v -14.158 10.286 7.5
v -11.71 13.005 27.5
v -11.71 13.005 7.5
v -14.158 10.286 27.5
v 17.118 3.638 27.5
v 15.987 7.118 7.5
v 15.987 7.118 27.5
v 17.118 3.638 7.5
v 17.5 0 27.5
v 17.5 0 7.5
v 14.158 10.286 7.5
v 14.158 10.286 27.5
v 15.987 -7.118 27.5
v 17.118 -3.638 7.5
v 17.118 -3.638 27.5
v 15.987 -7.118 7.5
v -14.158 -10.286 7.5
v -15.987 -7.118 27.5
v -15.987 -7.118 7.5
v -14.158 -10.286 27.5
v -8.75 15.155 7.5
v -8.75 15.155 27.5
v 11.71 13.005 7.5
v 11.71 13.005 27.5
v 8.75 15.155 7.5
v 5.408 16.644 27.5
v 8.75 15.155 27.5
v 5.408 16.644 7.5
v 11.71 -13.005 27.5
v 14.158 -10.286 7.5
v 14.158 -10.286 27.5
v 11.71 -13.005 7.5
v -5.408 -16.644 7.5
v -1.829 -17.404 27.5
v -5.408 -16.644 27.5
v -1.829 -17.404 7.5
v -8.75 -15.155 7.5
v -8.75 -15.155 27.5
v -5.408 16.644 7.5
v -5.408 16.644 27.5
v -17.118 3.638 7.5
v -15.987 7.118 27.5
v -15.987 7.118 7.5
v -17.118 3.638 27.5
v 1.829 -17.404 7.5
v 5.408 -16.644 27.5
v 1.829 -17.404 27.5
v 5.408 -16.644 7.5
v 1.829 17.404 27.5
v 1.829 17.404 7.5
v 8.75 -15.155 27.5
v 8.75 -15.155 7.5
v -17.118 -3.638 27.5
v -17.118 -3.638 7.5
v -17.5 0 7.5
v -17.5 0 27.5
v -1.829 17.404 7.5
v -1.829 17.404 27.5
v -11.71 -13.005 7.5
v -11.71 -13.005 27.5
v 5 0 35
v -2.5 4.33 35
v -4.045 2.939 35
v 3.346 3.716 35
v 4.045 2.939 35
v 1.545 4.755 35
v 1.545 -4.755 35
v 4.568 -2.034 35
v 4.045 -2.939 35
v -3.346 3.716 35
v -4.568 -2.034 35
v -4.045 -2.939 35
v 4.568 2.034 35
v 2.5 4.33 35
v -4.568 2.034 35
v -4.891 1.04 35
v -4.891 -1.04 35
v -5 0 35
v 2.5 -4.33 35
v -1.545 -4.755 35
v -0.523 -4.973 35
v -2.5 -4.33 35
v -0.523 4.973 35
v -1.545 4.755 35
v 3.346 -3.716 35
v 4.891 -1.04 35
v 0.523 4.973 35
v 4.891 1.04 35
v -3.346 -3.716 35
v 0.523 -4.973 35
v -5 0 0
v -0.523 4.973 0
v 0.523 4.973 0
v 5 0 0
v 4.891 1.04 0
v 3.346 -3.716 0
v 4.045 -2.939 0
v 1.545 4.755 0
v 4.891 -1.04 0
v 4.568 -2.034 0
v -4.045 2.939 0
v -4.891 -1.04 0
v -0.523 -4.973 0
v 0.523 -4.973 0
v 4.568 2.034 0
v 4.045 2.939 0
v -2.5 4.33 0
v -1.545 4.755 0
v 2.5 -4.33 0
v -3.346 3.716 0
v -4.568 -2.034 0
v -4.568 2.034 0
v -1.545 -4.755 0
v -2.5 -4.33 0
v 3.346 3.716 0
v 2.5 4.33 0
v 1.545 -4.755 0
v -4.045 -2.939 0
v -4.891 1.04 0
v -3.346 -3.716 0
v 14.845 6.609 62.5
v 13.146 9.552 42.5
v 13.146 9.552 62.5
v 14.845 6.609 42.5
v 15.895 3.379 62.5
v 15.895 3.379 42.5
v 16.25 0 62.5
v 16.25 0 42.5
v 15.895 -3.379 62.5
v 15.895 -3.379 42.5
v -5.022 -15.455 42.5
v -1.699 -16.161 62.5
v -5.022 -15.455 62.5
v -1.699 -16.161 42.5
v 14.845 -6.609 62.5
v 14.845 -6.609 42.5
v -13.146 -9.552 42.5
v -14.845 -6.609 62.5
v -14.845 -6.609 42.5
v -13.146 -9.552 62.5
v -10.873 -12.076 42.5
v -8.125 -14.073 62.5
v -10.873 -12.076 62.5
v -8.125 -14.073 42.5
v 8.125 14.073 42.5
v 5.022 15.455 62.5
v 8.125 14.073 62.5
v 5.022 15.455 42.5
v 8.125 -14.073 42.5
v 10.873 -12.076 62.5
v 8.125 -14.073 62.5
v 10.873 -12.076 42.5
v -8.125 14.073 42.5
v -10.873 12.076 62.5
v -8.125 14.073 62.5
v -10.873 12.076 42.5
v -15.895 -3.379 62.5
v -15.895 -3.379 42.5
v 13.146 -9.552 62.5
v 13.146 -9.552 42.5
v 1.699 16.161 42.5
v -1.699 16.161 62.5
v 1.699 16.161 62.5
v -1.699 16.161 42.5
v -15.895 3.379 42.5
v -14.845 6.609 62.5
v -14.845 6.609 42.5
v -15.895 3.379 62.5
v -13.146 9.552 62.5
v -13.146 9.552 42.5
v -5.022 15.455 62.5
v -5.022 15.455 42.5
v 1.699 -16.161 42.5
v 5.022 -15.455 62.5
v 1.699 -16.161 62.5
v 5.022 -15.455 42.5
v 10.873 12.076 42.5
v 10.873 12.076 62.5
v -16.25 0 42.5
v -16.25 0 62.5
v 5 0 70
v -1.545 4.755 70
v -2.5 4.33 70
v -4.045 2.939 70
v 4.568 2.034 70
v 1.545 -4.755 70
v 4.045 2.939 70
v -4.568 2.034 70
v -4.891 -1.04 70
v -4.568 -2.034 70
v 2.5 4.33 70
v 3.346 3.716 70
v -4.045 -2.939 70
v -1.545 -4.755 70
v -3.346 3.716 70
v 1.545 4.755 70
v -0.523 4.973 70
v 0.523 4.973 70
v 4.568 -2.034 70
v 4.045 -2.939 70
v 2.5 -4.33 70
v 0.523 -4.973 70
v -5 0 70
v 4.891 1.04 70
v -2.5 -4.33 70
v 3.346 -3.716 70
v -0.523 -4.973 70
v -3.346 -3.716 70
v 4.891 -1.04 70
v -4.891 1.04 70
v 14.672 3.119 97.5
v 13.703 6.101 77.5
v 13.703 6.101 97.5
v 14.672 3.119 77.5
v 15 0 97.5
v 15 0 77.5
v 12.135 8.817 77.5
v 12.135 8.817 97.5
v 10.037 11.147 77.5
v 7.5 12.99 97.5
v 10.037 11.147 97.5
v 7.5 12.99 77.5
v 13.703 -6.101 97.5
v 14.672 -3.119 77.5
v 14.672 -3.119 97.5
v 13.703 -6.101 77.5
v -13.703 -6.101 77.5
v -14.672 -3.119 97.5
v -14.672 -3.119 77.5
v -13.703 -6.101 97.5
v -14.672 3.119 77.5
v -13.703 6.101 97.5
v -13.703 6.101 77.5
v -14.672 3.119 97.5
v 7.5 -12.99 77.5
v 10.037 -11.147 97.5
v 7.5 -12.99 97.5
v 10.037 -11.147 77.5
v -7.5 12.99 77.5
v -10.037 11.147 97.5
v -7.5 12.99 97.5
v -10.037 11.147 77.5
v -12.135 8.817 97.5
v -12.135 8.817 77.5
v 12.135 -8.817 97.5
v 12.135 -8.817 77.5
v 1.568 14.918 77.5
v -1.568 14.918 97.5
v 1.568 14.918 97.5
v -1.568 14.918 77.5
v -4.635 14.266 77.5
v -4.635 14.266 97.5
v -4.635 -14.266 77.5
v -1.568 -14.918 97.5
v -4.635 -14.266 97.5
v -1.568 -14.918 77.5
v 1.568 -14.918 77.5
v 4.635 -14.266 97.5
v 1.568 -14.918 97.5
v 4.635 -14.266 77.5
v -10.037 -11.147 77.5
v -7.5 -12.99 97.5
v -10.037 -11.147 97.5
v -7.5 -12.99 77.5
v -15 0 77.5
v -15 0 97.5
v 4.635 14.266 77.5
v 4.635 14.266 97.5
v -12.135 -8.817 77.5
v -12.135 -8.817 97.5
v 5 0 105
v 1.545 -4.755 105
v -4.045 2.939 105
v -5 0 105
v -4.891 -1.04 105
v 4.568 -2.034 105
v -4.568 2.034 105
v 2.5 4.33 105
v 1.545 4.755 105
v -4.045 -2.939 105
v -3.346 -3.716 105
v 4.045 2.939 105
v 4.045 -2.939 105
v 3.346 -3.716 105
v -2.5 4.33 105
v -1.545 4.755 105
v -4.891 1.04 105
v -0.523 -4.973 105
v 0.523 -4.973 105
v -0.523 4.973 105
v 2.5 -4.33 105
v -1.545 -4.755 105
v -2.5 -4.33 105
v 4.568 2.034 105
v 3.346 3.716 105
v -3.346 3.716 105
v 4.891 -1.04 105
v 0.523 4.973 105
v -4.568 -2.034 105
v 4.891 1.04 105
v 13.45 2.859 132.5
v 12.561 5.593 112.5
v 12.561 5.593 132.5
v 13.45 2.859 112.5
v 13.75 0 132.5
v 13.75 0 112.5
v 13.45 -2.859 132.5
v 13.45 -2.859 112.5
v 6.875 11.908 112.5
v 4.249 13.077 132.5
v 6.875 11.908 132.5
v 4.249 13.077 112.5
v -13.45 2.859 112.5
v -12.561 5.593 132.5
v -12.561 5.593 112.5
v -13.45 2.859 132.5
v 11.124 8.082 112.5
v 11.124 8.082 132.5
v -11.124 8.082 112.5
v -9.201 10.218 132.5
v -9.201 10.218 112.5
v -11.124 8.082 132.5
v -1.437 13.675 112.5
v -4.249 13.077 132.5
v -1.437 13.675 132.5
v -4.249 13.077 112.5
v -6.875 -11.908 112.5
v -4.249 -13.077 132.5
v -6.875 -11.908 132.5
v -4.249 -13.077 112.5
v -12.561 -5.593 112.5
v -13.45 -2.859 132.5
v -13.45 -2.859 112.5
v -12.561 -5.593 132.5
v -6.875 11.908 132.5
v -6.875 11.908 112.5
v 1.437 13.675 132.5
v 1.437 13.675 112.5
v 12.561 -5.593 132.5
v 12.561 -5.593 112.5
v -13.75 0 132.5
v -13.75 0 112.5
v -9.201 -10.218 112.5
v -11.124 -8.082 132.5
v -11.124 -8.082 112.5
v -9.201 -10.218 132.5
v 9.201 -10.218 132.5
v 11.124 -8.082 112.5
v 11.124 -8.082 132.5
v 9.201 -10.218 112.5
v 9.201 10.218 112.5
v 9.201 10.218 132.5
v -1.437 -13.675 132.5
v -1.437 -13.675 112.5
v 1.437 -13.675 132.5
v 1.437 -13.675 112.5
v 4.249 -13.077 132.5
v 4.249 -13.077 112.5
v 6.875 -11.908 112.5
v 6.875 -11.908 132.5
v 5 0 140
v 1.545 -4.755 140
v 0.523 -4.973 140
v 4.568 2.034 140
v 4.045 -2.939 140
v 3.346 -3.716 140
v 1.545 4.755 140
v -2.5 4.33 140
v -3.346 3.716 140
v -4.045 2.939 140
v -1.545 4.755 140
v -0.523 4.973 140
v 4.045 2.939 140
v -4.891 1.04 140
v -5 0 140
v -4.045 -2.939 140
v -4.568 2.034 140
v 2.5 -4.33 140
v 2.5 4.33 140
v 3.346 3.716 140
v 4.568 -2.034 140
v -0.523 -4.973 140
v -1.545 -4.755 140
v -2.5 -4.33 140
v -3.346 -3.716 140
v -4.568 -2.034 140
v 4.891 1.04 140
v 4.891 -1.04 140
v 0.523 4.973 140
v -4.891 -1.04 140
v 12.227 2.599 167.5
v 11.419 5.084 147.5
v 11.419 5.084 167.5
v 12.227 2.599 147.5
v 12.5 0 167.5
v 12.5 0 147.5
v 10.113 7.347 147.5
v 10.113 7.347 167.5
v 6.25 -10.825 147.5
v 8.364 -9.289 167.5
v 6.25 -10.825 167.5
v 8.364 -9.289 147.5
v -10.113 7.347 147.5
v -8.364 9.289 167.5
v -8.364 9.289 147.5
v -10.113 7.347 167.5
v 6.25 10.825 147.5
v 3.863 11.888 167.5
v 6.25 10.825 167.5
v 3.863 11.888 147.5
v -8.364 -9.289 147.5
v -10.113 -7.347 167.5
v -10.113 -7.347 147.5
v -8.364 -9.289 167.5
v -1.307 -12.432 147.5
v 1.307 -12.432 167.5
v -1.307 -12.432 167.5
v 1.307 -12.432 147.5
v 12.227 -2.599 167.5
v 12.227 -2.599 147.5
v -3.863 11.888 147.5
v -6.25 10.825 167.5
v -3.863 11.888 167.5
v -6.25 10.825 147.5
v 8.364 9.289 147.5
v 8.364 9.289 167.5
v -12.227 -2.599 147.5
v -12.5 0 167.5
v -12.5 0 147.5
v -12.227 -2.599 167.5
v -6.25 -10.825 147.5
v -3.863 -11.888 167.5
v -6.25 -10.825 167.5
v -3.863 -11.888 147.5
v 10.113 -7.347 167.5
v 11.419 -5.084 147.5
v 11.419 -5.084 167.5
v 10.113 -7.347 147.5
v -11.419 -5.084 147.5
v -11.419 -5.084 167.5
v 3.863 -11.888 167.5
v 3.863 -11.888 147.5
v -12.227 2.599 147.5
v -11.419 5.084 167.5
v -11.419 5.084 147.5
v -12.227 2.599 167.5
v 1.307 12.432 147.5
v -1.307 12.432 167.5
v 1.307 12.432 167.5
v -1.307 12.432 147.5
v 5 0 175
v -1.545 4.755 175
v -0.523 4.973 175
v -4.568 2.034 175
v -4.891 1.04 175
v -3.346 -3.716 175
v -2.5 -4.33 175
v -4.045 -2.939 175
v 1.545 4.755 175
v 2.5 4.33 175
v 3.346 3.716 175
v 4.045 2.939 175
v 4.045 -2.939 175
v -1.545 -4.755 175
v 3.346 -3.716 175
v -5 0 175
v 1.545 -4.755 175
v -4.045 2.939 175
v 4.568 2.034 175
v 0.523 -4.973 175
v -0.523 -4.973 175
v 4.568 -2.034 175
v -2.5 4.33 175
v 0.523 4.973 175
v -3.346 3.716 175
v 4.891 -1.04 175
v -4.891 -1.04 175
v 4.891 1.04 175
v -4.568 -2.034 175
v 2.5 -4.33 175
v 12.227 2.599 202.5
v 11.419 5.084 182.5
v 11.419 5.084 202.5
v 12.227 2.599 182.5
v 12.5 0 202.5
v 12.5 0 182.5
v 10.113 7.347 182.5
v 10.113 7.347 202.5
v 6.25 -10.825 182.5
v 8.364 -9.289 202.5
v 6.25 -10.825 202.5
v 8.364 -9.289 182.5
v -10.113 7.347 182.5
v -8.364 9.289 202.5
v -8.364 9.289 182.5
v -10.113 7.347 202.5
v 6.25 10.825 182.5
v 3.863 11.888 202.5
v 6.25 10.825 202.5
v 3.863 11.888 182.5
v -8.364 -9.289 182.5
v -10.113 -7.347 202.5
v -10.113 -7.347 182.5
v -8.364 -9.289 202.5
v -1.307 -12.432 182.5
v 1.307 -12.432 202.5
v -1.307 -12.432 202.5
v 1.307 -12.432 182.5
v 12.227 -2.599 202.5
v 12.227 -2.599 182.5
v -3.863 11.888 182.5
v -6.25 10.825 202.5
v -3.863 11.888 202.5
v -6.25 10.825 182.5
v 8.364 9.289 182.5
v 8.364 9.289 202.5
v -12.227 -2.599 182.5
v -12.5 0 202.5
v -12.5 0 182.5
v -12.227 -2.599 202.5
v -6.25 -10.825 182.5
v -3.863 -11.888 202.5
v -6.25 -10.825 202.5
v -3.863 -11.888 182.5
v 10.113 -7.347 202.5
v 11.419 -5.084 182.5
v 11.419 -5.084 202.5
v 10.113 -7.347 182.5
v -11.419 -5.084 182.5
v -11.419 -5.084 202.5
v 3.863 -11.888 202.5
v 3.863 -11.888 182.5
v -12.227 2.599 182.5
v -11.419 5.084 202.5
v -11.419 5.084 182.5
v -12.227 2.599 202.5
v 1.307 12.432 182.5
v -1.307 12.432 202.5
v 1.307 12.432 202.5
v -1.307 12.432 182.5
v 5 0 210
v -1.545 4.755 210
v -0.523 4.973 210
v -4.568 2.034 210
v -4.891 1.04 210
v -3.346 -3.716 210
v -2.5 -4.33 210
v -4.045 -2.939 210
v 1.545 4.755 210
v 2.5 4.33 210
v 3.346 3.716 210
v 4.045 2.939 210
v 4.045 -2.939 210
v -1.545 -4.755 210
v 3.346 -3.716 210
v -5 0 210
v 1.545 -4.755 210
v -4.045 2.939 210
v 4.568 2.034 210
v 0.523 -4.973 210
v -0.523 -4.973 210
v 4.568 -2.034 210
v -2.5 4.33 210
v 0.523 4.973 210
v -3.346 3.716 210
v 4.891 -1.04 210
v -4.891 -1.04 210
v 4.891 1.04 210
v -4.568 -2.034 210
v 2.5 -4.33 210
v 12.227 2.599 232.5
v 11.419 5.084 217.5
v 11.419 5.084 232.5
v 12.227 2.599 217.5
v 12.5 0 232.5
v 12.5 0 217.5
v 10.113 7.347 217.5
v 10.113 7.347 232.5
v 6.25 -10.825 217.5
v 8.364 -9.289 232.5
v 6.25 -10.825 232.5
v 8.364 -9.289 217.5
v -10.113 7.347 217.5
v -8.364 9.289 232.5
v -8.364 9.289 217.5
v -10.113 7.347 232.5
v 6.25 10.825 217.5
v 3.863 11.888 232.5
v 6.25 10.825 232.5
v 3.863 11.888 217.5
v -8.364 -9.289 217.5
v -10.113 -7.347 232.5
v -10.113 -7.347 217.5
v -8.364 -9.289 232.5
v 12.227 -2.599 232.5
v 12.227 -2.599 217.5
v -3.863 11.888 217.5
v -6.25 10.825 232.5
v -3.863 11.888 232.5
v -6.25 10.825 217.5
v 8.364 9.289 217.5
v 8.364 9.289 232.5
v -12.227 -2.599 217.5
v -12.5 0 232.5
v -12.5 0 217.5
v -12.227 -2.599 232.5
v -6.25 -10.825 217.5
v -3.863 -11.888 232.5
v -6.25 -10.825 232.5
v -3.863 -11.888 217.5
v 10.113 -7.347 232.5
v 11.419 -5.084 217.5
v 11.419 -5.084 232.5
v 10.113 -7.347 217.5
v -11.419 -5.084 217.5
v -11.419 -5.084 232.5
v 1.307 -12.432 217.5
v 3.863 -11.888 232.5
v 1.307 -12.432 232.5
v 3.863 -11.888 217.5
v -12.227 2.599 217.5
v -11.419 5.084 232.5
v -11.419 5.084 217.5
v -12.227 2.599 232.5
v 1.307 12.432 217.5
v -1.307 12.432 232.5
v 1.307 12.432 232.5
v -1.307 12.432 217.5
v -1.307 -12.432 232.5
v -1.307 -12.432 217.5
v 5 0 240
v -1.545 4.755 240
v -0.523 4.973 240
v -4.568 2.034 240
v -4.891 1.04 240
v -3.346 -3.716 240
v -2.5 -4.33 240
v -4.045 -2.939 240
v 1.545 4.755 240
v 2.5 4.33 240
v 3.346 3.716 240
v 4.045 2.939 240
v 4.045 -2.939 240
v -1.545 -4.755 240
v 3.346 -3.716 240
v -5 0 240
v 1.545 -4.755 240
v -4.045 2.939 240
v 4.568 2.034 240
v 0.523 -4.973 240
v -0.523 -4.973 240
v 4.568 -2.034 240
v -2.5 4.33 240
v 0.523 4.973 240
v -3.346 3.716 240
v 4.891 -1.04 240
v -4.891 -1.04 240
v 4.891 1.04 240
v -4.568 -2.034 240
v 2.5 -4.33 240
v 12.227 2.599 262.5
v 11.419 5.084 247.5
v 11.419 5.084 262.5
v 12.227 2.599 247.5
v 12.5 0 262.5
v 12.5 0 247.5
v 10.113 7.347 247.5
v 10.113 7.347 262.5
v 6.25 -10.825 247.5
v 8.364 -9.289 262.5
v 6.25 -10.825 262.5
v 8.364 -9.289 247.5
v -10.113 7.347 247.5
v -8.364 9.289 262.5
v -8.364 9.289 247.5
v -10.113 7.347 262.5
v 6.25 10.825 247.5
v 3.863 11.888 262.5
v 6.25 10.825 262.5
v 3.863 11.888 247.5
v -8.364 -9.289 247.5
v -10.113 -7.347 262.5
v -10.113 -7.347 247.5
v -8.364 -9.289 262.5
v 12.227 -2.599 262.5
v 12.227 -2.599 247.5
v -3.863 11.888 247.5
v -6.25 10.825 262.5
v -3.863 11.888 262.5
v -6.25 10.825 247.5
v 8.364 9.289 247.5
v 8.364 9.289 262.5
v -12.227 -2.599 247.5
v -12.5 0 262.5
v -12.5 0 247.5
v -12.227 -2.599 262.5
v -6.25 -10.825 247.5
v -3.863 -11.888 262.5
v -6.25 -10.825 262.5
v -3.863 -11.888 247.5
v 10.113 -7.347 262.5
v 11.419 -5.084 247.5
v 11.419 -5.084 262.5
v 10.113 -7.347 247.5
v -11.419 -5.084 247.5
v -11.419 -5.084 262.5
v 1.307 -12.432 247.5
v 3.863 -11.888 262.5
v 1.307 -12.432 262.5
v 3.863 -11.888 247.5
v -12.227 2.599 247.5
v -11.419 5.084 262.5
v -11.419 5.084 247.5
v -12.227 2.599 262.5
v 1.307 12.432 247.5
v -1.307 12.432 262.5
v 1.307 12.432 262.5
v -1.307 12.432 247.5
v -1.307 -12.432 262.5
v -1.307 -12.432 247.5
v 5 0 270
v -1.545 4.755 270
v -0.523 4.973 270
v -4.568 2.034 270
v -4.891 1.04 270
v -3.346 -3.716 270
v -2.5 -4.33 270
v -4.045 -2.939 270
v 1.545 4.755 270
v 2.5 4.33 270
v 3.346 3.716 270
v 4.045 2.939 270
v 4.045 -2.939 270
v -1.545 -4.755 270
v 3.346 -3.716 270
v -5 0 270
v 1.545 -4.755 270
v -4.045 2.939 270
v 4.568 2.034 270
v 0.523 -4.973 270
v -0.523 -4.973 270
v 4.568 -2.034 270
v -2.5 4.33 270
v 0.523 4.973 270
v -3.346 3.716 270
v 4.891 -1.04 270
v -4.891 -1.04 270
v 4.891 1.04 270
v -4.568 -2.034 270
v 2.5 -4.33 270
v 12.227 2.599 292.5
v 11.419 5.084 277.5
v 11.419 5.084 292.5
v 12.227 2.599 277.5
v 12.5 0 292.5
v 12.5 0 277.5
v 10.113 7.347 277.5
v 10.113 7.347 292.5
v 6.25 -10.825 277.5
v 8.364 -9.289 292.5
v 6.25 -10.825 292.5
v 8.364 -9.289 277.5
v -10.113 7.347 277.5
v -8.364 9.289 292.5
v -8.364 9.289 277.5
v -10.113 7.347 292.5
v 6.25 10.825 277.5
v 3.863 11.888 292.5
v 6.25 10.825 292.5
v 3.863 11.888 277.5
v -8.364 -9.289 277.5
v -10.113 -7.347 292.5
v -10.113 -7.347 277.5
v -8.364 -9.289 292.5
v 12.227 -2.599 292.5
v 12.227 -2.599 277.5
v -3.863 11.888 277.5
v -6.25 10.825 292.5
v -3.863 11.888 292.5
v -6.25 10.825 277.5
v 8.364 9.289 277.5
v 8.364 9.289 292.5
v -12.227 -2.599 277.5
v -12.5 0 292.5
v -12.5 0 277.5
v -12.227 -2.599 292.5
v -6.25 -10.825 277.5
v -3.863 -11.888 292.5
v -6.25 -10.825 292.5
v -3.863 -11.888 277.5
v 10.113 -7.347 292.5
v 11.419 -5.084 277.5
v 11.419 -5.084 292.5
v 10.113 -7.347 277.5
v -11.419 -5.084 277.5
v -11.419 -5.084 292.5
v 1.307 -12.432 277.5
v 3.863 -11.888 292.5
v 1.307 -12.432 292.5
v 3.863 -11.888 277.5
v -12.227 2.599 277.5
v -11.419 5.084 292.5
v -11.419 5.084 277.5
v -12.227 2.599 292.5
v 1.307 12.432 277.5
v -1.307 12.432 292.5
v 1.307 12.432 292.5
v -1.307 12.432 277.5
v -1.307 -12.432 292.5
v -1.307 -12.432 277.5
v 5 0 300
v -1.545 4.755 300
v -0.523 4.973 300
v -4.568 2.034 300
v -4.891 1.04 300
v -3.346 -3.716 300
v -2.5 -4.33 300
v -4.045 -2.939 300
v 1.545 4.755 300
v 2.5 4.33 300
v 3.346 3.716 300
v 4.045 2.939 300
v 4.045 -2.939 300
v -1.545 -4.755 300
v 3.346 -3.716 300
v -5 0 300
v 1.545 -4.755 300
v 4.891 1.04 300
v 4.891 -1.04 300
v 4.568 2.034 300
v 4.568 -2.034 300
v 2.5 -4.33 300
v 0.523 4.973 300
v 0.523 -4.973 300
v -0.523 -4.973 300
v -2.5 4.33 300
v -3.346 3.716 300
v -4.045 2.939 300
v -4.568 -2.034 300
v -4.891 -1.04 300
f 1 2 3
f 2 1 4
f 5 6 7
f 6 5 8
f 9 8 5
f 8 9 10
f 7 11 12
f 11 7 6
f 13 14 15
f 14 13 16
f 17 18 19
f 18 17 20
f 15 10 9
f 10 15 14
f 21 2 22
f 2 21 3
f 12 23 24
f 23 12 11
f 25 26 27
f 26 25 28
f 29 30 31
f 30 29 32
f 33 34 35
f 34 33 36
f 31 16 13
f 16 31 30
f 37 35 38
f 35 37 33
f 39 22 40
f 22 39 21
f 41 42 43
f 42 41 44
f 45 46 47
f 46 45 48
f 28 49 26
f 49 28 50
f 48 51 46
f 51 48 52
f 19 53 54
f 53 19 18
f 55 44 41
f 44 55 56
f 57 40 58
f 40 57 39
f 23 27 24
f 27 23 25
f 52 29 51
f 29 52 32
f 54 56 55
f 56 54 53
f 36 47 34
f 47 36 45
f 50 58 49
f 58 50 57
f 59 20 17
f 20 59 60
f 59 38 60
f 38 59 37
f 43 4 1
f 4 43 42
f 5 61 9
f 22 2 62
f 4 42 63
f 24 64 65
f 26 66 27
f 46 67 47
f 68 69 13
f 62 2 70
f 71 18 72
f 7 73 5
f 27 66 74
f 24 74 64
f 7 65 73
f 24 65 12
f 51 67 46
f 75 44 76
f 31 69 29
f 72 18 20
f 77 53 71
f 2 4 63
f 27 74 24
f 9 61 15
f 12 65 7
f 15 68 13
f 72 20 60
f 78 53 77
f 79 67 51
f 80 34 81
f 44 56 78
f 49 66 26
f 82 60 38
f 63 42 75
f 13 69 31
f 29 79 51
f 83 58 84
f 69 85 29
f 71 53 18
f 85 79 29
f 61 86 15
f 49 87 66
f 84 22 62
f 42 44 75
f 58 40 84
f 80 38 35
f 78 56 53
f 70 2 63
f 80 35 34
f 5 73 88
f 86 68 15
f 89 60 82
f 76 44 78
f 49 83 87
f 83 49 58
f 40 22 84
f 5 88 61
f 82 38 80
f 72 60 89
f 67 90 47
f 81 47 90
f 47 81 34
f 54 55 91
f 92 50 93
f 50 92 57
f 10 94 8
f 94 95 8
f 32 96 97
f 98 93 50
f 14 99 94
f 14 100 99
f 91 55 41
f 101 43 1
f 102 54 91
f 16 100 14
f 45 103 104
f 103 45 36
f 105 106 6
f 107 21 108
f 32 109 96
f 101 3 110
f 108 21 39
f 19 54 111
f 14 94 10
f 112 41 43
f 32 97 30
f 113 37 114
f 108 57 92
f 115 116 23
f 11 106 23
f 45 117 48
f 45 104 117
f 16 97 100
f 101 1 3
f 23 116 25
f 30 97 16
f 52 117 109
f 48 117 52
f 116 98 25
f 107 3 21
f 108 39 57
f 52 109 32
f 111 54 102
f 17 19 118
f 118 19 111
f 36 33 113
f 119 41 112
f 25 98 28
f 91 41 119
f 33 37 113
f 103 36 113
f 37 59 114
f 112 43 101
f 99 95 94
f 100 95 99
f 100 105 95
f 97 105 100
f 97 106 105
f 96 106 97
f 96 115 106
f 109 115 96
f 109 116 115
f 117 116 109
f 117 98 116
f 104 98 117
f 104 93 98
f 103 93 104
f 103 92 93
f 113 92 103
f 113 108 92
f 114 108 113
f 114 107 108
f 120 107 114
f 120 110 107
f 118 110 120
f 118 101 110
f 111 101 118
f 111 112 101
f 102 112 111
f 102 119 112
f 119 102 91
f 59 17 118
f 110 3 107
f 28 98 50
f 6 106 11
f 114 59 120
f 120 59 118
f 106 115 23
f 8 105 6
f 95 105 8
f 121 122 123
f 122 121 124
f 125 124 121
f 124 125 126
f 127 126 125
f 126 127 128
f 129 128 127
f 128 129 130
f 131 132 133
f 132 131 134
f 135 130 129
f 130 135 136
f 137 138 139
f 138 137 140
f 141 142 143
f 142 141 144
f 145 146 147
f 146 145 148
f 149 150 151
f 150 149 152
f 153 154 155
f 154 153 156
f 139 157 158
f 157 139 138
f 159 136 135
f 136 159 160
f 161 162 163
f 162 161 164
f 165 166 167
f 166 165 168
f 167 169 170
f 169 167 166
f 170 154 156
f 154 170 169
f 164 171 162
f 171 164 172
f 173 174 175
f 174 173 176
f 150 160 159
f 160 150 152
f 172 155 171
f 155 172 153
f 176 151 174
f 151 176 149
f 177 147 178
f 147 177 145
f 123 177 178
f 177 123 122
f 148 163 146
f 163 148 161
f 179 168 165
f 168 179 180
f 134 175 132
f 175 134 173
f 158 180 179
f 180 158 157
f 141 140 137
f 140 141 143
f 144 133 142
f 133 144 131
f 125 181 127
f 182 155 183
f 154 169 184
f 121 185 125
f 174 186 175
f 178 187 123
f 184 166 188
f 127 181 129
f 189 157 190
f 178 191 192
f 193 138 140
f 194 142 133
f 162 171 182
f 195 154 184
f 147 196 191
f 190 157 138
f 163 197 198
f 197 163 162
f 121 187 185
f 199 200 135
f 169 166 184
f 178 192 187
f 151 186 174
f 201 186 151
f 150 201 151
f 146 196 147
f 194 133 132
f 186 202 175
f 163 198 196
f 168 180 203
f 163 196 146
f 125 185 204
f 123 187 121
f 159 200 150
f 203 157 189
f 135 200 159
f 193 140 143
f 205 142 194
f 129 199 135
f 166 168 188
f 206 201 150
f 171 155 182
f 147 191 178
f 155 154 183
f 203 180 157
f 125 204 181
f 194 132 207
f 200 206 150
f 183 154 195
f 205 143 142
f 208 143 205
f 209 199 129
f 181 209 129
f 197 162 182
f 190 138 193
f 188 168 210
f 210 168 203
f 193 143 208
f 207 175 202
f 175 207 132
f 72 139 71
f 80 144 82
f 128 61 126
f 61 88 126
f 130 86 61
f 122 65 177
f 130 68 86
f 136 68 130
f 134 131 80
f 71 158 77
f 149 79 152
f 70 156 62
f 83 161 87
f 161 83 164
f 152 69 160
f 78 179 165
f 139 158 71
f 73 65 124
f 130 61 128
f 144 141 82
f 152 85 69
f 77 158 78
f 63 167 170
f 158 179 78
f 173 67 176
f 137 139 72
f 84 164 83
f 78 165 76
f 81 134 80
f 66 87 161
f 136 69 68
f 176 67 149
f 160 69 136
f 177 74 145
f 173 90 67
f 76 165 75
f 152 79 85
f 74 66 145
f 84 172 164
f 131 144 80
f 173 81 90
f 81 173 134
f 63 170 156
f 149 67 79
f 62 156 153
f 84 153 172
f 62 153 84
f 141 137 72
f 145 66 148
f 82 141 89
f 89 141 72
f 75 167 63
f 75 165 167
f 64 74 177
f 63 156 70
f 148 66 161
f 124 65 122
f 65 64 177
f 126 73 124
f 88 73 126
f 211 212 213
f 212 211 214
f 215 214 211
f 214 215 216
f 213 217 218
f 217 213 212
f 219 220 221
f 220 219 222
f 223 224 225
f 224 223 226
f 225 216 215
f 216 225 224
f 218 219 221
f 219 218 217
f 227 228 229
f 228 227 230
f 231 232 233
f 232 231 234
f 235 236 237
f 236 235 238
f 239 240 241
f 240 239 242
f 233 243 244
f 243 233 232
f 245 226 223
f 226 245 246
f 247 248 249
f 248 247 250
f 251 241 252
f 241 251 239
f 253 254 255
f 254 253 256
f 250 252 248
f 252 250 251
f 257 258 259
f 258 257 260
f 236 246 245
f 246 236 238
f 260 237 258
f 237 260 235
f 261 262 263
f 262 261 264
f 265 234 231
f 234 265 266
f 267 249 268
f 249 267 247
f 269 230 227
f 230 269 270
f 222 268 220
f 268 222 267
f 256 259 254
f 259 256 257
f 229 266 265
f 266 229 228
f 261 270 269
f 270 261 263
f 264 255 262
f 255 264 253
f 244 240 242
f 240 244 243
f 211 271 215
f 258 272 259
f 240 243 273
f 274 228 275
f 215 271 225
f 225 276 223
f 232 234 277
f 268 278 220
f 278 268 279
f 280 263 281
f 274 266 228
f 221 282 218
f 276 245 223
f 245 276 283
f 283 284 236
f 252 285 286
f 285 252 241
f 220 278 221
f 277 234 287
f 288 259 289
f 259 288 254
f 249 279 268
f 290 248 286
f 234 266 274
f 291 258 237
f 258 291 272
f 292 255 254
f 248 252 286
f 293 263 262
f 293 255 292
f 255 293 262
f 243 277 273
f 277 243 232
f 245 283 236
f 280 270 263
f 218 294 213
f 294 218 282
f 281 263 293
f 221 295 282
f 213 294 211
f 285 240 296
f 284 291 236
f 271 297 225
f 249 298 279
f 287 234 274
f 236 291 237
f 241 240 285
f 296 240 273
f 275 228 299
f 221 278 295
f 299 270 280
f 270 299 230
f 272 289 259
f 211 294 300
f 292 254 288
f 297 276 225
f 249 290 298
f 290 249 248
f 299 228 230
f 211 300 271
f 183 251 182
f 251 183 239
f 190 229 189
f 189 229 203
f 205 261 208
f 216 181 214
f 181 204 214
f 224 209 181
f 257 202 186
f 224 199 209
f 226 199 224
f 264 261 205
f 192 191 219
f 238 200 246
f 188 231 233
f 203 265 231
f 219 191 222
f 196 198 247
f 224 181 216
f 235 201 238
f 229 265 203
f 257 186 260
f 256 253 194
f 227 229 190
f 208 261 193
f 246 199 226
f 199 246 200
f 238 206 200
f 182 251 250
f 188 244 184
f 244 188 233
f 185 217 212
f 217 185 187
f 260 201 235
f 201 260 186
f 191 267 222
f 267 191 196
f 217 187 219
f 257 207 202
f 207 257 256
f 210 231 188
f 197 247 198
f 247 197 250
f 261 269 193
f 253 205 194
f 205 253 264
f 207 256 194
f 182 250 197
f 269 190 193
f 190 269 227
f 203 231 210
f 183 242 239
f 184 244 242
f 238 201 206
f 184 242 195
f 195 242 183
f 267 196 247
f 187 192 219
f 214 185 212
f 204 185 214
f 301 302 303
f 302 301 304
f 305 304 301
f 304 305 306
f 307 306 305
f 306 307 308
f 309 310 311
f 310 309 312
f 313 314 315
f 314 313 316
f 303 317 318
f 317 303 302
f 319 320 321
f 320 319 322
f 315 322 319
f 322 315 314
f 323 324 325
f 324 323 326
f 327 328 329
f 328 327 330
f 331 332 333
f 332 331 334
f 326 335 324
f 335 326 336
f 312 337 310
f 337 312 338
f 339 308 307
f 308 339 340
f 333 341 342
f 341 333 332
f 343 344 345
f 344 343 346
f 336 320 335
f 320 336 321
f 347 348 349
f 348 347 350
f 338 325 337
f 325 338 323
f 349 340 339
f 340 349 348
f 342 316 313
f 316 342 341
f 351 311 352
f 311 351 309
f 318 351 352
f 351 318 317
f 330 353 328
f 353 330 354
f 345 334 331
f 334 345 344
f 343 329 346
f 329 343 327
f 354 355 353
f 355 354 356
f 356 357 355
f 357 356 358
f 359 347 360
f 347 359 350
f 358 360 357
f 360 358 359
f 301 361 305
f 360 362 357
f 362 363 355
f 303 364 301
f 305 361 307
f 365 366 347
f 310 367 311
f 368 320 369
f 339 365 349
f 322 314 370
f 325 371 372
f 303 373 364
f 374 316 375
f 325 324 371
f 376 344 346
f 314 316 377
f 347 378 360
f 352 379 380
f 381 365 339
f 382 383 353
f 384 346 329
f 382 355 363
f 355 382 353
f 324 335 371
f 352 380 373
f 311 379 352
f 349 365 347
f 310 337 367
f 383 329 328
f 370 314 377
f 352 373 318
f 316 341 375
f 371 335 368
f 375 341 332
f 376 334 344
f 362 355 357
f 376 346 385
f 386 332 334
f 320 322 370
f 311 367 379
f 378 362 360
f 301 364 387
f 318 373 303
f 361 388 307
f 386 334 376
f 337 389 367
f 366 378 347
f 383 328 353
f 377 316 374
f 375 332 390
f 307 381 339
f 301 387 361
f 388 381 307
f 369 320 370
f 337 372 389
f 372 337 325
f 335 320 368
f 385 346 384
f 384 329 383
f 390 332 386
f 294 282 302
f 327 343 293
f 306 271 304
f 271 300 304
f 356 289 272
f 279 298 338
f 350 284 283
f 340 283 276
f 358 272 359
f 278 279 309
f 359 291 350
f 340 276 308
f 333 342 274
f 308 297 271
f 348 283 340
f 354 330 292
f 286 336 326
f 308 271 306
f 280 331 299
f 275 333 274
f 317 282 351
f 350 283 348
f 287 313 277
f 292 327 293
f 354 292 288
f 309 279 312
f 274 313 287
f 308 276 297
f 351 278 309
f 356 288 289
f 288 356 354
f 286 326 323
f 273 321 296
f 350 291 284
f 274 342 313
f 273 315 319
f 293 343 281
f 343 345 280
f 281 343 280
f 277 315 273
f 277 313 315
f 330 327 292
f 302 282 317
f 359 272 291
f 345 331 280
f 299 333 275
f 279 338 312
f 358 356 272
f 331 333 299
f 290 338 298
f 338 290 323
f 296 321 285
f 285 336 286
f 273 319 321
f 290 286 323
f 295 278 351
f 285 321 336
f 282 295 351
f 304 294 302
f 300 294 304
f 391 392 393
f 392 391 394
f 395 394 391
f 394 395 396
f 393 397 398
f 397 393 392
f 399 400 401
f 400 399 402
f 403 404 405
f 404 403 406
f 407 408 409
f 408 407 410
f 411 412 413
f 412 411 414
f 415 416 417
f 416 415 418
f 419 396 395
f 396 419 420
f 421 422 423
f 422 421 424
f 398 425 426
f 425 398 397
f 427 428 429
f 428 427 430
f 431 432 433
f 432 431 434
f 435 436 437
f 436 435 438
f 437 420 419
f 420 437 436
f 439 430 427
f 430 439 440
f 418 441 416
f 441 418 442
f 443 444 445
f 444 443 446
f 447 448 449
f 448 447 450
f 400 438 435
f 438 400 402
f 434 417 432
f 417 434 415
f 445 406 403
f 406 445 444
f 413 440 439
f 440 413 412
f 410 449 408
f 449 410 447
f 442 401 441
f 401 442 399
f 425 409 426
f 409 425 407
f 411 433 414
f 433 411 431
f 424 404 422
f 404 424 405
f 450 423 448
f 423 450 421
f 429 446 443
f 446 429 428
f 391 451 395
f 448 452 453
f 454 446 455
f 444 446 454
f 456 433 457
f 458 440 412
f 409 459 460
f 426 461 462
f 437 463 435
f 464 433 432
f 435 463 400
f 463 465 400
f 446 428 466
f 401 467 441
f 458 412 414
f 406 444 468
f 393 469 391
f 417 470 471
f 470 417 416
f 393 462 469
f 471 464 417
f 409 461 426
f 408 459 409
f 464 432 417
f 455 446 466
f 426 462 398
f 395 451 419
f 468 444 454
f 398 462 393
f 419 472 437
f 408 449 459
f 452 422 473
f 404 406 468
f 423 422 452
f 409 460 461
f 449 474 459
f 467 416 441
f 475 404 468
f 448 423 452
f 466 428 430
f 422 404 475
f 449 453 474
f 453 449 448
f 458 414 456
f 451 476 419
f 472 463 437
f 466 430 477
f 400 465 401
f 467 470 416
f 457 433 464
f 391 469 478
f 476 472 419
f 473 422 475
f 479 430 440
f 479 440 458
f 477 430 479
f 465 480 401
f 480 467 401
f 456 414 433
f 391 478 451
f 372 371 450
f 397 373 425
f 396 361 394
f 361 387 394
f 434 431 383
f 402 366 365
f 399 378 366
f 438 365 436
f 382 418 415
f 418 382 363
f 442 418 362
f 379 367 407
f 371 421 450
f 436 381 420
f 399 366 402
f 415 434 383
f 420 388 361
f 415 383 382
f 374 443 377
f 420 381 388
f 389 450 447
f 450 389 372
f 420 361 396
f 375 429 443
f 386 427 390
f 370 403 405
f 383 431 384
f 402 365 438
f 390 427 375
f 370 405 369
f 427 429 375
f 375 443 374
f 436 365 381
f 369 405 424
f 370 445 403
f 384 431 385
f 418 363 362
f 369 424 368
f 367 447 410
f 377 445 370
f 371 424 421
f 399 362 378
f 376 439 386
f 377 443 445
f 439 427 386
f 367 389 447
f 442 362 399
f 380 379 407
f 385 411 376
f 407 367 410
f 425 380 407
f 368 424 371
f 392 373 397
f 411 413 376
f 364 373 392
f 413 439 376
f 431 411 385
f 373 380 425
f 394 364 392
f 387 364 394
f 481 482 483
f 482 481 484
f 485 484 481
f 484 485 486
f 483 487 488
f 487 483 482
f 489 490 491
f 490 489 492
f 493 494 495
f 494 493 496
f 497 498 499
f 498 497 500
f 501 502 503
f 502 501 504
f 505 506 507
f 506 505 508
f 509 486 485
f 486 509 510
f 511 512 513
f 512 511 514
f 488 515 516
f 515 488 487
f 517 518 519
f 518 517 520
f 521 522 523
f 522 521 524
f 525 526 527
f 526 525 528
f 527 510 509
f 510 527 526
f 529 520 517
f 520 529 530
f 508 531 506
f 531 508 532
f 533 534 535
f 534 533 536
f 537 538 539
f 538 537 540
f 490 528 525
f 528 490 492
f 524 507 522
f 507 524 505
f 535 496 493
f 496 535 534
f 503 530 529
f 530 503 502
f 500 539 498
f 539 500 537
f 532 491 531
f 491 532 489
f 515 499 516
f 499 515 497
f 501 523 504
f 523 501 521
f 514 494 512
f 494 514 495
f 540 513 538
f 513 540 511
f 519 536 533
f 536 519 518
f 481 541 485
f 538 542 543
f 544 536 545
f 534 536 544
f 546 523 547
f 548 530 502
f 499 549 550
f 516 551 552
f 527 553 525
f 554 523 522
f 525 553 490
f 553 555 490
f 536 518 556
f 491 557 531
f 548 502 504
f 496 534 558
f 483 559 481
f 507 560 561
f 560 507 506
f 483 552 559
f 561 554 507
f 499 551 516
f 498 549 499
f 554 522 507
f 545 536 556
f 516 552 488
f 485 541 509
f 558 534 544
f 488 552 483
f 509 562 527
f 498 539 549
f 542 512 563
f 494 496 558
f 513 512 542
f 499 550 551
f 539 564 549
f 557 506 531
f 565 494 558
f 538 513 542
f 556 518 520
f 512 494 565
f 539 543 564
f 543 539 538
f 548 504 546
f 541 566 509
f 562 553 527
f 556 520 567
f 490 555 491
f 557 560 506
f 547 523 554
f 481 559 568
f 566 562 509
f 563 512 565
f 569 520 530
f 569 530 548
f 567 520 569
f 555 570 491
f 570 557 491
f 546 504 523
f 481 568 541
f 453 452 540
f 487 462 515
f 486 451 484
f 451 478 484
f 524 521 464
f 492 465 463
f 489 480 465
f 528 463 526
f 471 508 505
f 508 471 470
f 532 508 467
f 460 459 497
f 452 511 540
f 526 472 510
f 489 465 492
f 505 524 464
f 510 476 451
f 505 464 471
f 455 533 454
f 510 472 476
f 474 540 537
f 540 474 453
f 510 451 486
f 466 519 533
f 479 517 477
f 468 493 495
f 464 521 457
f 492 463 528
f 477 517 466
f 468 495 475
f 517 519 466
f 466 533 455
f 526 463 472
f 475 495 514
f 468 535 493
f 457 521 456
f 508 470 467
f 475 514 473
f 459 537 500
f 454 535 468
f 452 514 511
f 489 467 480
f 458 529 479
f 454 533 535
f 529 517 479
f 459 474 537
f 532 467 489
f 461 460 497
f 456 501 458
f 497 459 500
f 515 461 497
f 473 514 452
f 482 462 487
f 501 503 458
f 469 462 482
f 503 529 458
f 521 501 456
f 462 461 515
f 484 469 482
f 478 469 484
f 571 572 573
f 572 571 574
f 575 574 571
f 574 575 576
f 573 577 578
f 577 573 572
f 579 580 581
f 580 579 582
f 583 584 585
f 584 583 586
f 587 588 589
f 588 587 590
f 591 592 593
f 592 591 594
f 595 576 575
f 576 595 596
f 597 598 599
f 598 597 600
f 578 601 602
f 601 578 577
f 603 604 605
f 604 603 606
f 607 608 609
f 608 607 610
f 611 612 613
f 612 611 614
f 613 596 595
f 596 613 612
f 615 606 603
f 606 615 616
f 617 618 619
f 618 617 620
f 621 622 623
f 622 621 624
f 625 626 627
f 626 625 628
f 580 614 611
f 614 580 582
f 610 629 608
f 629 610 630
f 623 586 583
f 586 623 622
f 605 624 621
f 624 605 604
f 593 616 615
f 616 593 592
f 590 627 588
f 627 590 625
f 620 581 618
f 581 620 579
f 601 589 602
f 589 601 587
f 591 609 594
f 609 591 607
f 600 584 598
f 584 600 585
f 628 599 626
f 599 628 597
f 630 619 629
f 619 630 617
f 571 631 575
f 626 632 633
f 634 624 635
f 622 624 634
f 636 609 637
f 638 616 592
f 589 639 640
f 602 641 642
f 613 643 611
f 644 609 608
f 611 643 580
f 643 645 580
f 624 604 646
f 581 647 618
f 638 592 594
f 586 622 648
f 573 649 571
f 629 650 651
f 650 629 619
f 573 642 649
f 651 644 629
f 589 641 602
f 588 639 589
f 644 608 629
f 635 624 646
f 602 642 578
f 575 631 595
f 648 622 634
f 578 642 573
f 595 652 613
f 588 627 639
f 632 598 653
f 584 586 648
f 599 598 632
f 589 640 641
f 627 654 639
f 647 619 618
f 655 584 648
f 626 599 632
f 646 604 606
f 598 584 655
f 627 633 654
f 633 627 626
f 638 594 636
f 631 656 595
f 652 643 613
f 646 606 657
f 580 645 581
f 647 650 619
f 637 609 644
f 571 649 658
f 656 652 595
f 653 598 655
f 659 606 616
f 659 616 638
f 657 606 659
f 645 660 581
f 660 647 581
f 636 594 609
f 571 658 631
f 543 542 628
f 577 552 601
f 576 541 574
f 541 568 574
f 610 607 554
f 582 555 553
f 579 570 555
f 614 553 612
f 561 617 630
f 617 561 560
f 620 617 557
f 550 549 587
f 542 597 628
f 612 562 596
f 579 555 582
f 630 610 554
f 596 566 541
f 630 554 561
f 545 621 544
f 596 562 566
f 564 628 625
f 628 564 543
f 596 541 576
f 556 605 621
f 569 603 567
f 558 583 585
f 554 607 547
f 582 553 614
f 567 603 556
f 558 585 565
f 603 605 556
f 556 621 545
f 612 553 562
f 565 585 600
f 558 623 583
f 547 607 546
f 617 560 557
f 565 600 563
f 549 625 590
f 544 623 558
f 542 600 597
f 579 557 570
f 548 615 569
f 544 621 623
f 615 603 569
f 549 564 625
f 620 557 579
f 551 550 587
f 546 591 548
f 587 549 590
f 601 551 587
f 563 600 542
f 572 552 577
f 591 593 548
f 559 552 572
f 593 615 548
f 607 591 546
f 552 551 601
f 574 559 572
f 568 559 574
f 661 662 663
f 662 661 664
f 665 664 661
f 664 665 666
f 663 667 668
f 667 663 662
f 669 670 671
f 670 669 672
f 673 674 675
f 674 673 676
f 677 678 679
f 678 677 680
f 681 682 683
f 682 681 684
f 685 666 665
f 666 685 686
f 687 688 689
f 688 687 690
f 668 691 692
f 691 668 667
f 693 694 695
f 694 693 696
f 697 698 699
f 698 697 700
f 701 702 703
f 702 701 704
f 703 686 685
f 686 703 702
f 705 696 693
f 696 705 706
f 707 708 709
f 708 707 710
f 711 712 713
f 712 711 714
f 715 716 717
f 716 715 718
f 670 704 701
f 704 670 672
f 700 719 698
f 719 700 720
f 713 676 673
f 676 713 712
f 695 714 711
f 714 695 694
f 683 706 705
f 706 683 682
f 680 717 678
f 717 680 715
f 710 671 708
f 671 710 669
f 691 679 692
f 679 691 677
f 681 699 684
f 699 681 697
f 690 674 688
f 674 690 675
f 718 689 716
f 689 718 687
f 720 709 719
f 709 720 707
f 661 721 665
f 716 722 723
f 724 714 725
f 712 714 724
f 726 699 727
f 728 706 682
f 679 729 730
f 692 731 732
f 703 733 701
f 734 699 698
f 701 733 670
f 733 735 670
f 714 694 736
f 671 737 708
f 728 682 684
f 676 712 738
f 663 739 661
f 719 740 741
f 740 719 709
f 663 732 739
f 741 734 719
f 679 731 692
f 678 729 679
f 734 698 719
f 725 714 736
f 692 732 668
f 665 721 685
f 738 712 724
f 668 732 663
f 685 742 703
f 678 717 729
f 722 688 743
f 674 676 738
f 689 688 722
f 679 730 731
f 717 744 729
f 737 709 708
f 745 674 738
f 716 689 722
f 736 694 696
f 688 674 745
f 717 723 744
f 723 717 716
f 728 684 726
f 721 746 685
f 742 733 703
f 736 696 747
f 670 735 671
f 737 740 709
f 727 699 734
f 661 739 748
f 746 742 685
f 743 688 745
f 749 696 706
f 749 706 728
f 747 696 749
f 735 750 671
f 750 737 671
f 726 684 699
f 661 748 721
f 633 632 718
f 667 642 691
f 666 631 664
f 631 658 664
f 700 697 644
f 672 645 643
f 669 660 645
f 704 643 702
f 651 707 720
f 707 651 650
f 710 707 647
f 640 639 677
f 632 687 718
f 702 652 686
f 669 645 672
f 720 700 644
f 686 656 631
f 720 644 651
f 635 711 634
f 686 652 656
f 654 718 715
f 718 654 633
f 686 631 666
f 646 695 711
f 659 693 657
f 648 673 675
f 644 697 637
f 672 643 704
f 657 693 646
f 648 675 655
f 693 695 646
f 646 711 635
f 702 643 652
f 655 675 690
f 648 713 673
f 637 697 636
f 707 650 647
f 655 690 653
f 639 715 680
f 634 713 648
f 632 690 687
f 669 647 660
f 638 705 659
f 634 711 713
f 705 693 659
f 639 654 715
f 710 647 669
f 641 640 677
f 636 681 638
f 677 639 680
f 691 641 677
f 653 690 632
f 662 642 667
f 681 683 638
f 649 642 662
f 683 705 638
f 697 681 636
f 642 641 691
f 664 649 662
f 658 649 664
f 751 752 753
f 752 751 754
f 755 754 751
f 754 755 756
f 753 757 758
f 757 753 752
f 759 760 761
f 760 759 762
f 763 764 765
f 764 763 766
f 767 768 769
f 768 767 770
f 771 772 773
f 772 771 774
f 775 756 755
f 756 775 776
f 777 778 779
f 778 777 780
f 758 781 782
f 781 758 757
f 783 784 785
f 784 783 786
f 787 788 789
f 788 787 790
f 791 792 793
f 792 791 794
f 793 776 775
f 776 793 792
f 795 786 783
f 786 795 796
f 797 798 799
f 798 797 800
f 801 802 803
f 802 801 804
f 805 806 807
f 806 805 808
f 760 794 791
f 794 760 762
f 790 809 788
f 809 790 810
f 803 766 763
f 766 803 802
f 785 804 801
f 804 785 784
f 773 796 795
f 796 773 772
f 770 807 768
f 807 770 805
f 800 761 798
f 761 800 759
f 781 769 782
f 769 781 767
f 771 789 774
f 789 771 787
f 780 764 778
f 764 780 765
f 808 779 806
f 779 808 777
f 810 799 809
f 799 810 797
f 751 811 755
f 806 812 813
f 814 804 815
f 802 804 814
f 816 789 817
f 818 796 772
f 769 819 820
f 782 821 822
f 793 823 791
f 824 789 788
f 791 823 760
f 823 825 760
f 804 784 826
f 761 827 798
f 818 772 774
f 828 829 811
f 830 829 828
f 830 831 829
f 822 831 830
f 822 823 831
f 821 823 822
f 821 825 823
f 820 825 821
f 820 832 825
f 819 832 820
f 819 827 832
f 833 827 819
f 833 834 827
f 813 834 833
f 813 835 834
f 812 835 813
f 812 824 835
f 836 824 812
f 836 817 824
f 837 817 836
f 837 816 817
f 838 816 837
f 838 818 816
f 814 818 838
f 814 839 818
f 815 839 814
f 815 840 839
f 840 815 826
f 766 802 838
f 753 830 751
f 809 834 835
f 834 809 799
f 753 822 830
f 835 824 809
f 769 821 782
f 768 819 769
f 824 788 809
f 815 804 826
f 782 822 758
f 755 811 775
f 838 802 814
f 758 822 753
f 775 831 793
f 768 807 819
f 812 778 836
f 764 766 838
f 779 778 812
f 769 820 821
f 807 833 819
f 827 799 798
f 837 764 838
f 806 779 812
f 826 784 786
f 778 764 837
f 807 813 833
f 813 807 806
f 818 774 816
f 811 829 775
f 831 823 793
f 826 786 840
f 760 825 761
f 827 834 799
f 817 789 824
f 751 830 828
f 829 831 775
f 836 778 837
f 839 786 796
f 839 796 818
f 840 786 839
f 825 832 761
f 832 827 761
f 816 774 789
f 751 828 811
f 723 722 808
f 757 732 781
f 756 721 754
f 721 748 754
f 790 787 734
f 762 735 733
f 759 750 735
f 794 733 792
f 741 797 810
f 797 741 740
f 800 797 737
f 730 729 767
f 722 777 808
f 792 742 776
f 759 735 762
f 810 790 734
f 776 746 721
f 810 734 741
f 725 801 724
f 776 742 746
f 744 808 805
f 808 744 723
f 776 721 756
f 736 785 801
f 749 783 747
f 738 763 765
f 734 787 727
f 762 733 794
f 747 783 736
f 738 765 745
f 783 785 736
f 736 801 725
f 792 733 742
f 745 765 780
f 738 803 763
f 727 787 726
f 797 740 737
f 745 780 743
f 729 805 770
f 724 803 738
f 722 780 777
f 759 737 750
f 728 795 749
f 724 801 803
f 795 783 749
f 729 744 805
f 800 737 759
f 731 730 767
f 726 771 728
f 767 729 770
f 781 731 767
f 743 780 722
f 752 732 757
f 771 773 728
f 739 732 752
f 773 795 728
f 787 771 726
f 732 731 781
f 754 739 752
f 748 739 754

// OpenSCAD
$fn = 30;

Diameter = [35, 32.5, 30, 27.5, 25, 25, 25, 25, 25];
H_cylinder = [20, 20, 20, 20, 20, 20, 15, 15, 15];
h_cone = 7.5;
Num_holes = [5, 5, 5, 4, 4, 4, 3, 3, 3]; // Should be descending
assert(len(Diameter)==len(H_cylinder), "Diameter and H_cylinder must have equal lengths.");
assert(len(Diameter)==len(Num_holes), "Diameter and Num_holes must have equal lengths.");

caterpillar(Diameter, H_cylinder, h_cone);
hole_pos(Diameter, H_cylinder, h_cone, Num_holes);
//hole_tubes(Diameter, H_cylinder, h_cone, Num_holes);
//mold(Diameter, H_cylinder, h_cone);

module hole_pos(Diameter, H_cylinder, h_cone, Num_holes, margin_r=2.5, d_end=10, eps=1.0)
{
    H_block = calc_H_block(H_cylinder, h_cone);
    Z_shift = calc_z_shift(H_block);
    theta = 360/Num_holes[0];
    for (i=[0: len(Diameter)-1])
    {    
        for (j=[0: Num_holes[i]-1])
        {
        r = Diameter[i]/2 - margin_r;
        x = r*cos(2*j*theta);
        y = r*sin(2*j*theta);
        z = h_cone*(Diameter[i]-2*r)/(Diameter[i]-d_end);
        z_1 = h_cone - z + Z_shift[i];
        z_2 = h_cone + H_cylinder[i] + z + Z_shift[i];
        //translate([x, y, z_1+eps]) sphere(d=1);
        //translate([x, y, z_2-eps]) sphere(d=1);
        echo(x, y, z_1+eps);
        echo(x, y, z_2-eps);
        }
    }
}


module hole_tubes(Diameter, H_cylinder, h_cone, Num_holes, margin_r=2.5, d_hole=2)
{
    theta = 360/max(Num_holes);
    H_block = calc_H_block(H_cylinder, h_cone);
    Z_shift = calc_z_shift(H_block);
    for (j=[0: len(Diameter)-1])
    {   r = Diameter[j]/2 - margin_r;
        for (i=[0:Num_holes[j]-1])
        {
            translate([r*cos(2*i*theta), r*sin(2*i*theta), Z_shift[j]])
                cylinder(h=H_cylinder[j]+2*h_cone, d=d_hole);
        }
    }
}

module mold(Diameter, H_cylinder, h_cone, margin_l=2.5, margin_w=10, margin_h=10)
{
    H_block = [for (hc=H_cylinder) hc+2*h_cone];
    h = [for (i=H_block) 1]*H_block;
    w = max(Diameter);
    l = max(Diameter)/2;
    difference()
    {
        translate([l/2,0,h/2])
            cube([l+margin_l, w+margin_w, h+margin_h], center=true);
        caterpillar(Diameter, H_cylinder, h_cone);
        
    }
}
    
module caterpillar(Diameter, H_cylinder, h_cone)
{
    H_block = calc_H_block(H_cylinder, h_cone);
    Z_shift = calc_z_shift(H_block);

        union()
        {   
            for (i=[0: len(Diameter)-1])
            {
                translate([0, 0, Z_shift[i]])
                    block(Diameter[i], H_cylinder[i], h_cone);
            }
        }
}

module block(diameter, h_cylinder, h_cone, d_end=10)
{
    translate([0, 0, h_cone])
        union()
        {
            cylinder(h=h_cylinder, d=diameter);
            translate([0, 0, h_cylinder])
                cylinder(h=h_cone , d1=diameter, d2=d_end);
            translate([0, 0, -h_cone])
                cylinder(h=h_cone , d1=d_end, d2=diameter);
        }
}

function calc_H_block(H_cylinder, h_cone) = [ for (h=H_cylinder) h+2*h_cone];
function calc_z_shift(H_block)
    = concat(0, [ for (i=0, sum=H_block[0]; i<len(H_block);
                i=i+1, sum=sum+(H_block[i]==undef?0:H_block[i])) sum]);
